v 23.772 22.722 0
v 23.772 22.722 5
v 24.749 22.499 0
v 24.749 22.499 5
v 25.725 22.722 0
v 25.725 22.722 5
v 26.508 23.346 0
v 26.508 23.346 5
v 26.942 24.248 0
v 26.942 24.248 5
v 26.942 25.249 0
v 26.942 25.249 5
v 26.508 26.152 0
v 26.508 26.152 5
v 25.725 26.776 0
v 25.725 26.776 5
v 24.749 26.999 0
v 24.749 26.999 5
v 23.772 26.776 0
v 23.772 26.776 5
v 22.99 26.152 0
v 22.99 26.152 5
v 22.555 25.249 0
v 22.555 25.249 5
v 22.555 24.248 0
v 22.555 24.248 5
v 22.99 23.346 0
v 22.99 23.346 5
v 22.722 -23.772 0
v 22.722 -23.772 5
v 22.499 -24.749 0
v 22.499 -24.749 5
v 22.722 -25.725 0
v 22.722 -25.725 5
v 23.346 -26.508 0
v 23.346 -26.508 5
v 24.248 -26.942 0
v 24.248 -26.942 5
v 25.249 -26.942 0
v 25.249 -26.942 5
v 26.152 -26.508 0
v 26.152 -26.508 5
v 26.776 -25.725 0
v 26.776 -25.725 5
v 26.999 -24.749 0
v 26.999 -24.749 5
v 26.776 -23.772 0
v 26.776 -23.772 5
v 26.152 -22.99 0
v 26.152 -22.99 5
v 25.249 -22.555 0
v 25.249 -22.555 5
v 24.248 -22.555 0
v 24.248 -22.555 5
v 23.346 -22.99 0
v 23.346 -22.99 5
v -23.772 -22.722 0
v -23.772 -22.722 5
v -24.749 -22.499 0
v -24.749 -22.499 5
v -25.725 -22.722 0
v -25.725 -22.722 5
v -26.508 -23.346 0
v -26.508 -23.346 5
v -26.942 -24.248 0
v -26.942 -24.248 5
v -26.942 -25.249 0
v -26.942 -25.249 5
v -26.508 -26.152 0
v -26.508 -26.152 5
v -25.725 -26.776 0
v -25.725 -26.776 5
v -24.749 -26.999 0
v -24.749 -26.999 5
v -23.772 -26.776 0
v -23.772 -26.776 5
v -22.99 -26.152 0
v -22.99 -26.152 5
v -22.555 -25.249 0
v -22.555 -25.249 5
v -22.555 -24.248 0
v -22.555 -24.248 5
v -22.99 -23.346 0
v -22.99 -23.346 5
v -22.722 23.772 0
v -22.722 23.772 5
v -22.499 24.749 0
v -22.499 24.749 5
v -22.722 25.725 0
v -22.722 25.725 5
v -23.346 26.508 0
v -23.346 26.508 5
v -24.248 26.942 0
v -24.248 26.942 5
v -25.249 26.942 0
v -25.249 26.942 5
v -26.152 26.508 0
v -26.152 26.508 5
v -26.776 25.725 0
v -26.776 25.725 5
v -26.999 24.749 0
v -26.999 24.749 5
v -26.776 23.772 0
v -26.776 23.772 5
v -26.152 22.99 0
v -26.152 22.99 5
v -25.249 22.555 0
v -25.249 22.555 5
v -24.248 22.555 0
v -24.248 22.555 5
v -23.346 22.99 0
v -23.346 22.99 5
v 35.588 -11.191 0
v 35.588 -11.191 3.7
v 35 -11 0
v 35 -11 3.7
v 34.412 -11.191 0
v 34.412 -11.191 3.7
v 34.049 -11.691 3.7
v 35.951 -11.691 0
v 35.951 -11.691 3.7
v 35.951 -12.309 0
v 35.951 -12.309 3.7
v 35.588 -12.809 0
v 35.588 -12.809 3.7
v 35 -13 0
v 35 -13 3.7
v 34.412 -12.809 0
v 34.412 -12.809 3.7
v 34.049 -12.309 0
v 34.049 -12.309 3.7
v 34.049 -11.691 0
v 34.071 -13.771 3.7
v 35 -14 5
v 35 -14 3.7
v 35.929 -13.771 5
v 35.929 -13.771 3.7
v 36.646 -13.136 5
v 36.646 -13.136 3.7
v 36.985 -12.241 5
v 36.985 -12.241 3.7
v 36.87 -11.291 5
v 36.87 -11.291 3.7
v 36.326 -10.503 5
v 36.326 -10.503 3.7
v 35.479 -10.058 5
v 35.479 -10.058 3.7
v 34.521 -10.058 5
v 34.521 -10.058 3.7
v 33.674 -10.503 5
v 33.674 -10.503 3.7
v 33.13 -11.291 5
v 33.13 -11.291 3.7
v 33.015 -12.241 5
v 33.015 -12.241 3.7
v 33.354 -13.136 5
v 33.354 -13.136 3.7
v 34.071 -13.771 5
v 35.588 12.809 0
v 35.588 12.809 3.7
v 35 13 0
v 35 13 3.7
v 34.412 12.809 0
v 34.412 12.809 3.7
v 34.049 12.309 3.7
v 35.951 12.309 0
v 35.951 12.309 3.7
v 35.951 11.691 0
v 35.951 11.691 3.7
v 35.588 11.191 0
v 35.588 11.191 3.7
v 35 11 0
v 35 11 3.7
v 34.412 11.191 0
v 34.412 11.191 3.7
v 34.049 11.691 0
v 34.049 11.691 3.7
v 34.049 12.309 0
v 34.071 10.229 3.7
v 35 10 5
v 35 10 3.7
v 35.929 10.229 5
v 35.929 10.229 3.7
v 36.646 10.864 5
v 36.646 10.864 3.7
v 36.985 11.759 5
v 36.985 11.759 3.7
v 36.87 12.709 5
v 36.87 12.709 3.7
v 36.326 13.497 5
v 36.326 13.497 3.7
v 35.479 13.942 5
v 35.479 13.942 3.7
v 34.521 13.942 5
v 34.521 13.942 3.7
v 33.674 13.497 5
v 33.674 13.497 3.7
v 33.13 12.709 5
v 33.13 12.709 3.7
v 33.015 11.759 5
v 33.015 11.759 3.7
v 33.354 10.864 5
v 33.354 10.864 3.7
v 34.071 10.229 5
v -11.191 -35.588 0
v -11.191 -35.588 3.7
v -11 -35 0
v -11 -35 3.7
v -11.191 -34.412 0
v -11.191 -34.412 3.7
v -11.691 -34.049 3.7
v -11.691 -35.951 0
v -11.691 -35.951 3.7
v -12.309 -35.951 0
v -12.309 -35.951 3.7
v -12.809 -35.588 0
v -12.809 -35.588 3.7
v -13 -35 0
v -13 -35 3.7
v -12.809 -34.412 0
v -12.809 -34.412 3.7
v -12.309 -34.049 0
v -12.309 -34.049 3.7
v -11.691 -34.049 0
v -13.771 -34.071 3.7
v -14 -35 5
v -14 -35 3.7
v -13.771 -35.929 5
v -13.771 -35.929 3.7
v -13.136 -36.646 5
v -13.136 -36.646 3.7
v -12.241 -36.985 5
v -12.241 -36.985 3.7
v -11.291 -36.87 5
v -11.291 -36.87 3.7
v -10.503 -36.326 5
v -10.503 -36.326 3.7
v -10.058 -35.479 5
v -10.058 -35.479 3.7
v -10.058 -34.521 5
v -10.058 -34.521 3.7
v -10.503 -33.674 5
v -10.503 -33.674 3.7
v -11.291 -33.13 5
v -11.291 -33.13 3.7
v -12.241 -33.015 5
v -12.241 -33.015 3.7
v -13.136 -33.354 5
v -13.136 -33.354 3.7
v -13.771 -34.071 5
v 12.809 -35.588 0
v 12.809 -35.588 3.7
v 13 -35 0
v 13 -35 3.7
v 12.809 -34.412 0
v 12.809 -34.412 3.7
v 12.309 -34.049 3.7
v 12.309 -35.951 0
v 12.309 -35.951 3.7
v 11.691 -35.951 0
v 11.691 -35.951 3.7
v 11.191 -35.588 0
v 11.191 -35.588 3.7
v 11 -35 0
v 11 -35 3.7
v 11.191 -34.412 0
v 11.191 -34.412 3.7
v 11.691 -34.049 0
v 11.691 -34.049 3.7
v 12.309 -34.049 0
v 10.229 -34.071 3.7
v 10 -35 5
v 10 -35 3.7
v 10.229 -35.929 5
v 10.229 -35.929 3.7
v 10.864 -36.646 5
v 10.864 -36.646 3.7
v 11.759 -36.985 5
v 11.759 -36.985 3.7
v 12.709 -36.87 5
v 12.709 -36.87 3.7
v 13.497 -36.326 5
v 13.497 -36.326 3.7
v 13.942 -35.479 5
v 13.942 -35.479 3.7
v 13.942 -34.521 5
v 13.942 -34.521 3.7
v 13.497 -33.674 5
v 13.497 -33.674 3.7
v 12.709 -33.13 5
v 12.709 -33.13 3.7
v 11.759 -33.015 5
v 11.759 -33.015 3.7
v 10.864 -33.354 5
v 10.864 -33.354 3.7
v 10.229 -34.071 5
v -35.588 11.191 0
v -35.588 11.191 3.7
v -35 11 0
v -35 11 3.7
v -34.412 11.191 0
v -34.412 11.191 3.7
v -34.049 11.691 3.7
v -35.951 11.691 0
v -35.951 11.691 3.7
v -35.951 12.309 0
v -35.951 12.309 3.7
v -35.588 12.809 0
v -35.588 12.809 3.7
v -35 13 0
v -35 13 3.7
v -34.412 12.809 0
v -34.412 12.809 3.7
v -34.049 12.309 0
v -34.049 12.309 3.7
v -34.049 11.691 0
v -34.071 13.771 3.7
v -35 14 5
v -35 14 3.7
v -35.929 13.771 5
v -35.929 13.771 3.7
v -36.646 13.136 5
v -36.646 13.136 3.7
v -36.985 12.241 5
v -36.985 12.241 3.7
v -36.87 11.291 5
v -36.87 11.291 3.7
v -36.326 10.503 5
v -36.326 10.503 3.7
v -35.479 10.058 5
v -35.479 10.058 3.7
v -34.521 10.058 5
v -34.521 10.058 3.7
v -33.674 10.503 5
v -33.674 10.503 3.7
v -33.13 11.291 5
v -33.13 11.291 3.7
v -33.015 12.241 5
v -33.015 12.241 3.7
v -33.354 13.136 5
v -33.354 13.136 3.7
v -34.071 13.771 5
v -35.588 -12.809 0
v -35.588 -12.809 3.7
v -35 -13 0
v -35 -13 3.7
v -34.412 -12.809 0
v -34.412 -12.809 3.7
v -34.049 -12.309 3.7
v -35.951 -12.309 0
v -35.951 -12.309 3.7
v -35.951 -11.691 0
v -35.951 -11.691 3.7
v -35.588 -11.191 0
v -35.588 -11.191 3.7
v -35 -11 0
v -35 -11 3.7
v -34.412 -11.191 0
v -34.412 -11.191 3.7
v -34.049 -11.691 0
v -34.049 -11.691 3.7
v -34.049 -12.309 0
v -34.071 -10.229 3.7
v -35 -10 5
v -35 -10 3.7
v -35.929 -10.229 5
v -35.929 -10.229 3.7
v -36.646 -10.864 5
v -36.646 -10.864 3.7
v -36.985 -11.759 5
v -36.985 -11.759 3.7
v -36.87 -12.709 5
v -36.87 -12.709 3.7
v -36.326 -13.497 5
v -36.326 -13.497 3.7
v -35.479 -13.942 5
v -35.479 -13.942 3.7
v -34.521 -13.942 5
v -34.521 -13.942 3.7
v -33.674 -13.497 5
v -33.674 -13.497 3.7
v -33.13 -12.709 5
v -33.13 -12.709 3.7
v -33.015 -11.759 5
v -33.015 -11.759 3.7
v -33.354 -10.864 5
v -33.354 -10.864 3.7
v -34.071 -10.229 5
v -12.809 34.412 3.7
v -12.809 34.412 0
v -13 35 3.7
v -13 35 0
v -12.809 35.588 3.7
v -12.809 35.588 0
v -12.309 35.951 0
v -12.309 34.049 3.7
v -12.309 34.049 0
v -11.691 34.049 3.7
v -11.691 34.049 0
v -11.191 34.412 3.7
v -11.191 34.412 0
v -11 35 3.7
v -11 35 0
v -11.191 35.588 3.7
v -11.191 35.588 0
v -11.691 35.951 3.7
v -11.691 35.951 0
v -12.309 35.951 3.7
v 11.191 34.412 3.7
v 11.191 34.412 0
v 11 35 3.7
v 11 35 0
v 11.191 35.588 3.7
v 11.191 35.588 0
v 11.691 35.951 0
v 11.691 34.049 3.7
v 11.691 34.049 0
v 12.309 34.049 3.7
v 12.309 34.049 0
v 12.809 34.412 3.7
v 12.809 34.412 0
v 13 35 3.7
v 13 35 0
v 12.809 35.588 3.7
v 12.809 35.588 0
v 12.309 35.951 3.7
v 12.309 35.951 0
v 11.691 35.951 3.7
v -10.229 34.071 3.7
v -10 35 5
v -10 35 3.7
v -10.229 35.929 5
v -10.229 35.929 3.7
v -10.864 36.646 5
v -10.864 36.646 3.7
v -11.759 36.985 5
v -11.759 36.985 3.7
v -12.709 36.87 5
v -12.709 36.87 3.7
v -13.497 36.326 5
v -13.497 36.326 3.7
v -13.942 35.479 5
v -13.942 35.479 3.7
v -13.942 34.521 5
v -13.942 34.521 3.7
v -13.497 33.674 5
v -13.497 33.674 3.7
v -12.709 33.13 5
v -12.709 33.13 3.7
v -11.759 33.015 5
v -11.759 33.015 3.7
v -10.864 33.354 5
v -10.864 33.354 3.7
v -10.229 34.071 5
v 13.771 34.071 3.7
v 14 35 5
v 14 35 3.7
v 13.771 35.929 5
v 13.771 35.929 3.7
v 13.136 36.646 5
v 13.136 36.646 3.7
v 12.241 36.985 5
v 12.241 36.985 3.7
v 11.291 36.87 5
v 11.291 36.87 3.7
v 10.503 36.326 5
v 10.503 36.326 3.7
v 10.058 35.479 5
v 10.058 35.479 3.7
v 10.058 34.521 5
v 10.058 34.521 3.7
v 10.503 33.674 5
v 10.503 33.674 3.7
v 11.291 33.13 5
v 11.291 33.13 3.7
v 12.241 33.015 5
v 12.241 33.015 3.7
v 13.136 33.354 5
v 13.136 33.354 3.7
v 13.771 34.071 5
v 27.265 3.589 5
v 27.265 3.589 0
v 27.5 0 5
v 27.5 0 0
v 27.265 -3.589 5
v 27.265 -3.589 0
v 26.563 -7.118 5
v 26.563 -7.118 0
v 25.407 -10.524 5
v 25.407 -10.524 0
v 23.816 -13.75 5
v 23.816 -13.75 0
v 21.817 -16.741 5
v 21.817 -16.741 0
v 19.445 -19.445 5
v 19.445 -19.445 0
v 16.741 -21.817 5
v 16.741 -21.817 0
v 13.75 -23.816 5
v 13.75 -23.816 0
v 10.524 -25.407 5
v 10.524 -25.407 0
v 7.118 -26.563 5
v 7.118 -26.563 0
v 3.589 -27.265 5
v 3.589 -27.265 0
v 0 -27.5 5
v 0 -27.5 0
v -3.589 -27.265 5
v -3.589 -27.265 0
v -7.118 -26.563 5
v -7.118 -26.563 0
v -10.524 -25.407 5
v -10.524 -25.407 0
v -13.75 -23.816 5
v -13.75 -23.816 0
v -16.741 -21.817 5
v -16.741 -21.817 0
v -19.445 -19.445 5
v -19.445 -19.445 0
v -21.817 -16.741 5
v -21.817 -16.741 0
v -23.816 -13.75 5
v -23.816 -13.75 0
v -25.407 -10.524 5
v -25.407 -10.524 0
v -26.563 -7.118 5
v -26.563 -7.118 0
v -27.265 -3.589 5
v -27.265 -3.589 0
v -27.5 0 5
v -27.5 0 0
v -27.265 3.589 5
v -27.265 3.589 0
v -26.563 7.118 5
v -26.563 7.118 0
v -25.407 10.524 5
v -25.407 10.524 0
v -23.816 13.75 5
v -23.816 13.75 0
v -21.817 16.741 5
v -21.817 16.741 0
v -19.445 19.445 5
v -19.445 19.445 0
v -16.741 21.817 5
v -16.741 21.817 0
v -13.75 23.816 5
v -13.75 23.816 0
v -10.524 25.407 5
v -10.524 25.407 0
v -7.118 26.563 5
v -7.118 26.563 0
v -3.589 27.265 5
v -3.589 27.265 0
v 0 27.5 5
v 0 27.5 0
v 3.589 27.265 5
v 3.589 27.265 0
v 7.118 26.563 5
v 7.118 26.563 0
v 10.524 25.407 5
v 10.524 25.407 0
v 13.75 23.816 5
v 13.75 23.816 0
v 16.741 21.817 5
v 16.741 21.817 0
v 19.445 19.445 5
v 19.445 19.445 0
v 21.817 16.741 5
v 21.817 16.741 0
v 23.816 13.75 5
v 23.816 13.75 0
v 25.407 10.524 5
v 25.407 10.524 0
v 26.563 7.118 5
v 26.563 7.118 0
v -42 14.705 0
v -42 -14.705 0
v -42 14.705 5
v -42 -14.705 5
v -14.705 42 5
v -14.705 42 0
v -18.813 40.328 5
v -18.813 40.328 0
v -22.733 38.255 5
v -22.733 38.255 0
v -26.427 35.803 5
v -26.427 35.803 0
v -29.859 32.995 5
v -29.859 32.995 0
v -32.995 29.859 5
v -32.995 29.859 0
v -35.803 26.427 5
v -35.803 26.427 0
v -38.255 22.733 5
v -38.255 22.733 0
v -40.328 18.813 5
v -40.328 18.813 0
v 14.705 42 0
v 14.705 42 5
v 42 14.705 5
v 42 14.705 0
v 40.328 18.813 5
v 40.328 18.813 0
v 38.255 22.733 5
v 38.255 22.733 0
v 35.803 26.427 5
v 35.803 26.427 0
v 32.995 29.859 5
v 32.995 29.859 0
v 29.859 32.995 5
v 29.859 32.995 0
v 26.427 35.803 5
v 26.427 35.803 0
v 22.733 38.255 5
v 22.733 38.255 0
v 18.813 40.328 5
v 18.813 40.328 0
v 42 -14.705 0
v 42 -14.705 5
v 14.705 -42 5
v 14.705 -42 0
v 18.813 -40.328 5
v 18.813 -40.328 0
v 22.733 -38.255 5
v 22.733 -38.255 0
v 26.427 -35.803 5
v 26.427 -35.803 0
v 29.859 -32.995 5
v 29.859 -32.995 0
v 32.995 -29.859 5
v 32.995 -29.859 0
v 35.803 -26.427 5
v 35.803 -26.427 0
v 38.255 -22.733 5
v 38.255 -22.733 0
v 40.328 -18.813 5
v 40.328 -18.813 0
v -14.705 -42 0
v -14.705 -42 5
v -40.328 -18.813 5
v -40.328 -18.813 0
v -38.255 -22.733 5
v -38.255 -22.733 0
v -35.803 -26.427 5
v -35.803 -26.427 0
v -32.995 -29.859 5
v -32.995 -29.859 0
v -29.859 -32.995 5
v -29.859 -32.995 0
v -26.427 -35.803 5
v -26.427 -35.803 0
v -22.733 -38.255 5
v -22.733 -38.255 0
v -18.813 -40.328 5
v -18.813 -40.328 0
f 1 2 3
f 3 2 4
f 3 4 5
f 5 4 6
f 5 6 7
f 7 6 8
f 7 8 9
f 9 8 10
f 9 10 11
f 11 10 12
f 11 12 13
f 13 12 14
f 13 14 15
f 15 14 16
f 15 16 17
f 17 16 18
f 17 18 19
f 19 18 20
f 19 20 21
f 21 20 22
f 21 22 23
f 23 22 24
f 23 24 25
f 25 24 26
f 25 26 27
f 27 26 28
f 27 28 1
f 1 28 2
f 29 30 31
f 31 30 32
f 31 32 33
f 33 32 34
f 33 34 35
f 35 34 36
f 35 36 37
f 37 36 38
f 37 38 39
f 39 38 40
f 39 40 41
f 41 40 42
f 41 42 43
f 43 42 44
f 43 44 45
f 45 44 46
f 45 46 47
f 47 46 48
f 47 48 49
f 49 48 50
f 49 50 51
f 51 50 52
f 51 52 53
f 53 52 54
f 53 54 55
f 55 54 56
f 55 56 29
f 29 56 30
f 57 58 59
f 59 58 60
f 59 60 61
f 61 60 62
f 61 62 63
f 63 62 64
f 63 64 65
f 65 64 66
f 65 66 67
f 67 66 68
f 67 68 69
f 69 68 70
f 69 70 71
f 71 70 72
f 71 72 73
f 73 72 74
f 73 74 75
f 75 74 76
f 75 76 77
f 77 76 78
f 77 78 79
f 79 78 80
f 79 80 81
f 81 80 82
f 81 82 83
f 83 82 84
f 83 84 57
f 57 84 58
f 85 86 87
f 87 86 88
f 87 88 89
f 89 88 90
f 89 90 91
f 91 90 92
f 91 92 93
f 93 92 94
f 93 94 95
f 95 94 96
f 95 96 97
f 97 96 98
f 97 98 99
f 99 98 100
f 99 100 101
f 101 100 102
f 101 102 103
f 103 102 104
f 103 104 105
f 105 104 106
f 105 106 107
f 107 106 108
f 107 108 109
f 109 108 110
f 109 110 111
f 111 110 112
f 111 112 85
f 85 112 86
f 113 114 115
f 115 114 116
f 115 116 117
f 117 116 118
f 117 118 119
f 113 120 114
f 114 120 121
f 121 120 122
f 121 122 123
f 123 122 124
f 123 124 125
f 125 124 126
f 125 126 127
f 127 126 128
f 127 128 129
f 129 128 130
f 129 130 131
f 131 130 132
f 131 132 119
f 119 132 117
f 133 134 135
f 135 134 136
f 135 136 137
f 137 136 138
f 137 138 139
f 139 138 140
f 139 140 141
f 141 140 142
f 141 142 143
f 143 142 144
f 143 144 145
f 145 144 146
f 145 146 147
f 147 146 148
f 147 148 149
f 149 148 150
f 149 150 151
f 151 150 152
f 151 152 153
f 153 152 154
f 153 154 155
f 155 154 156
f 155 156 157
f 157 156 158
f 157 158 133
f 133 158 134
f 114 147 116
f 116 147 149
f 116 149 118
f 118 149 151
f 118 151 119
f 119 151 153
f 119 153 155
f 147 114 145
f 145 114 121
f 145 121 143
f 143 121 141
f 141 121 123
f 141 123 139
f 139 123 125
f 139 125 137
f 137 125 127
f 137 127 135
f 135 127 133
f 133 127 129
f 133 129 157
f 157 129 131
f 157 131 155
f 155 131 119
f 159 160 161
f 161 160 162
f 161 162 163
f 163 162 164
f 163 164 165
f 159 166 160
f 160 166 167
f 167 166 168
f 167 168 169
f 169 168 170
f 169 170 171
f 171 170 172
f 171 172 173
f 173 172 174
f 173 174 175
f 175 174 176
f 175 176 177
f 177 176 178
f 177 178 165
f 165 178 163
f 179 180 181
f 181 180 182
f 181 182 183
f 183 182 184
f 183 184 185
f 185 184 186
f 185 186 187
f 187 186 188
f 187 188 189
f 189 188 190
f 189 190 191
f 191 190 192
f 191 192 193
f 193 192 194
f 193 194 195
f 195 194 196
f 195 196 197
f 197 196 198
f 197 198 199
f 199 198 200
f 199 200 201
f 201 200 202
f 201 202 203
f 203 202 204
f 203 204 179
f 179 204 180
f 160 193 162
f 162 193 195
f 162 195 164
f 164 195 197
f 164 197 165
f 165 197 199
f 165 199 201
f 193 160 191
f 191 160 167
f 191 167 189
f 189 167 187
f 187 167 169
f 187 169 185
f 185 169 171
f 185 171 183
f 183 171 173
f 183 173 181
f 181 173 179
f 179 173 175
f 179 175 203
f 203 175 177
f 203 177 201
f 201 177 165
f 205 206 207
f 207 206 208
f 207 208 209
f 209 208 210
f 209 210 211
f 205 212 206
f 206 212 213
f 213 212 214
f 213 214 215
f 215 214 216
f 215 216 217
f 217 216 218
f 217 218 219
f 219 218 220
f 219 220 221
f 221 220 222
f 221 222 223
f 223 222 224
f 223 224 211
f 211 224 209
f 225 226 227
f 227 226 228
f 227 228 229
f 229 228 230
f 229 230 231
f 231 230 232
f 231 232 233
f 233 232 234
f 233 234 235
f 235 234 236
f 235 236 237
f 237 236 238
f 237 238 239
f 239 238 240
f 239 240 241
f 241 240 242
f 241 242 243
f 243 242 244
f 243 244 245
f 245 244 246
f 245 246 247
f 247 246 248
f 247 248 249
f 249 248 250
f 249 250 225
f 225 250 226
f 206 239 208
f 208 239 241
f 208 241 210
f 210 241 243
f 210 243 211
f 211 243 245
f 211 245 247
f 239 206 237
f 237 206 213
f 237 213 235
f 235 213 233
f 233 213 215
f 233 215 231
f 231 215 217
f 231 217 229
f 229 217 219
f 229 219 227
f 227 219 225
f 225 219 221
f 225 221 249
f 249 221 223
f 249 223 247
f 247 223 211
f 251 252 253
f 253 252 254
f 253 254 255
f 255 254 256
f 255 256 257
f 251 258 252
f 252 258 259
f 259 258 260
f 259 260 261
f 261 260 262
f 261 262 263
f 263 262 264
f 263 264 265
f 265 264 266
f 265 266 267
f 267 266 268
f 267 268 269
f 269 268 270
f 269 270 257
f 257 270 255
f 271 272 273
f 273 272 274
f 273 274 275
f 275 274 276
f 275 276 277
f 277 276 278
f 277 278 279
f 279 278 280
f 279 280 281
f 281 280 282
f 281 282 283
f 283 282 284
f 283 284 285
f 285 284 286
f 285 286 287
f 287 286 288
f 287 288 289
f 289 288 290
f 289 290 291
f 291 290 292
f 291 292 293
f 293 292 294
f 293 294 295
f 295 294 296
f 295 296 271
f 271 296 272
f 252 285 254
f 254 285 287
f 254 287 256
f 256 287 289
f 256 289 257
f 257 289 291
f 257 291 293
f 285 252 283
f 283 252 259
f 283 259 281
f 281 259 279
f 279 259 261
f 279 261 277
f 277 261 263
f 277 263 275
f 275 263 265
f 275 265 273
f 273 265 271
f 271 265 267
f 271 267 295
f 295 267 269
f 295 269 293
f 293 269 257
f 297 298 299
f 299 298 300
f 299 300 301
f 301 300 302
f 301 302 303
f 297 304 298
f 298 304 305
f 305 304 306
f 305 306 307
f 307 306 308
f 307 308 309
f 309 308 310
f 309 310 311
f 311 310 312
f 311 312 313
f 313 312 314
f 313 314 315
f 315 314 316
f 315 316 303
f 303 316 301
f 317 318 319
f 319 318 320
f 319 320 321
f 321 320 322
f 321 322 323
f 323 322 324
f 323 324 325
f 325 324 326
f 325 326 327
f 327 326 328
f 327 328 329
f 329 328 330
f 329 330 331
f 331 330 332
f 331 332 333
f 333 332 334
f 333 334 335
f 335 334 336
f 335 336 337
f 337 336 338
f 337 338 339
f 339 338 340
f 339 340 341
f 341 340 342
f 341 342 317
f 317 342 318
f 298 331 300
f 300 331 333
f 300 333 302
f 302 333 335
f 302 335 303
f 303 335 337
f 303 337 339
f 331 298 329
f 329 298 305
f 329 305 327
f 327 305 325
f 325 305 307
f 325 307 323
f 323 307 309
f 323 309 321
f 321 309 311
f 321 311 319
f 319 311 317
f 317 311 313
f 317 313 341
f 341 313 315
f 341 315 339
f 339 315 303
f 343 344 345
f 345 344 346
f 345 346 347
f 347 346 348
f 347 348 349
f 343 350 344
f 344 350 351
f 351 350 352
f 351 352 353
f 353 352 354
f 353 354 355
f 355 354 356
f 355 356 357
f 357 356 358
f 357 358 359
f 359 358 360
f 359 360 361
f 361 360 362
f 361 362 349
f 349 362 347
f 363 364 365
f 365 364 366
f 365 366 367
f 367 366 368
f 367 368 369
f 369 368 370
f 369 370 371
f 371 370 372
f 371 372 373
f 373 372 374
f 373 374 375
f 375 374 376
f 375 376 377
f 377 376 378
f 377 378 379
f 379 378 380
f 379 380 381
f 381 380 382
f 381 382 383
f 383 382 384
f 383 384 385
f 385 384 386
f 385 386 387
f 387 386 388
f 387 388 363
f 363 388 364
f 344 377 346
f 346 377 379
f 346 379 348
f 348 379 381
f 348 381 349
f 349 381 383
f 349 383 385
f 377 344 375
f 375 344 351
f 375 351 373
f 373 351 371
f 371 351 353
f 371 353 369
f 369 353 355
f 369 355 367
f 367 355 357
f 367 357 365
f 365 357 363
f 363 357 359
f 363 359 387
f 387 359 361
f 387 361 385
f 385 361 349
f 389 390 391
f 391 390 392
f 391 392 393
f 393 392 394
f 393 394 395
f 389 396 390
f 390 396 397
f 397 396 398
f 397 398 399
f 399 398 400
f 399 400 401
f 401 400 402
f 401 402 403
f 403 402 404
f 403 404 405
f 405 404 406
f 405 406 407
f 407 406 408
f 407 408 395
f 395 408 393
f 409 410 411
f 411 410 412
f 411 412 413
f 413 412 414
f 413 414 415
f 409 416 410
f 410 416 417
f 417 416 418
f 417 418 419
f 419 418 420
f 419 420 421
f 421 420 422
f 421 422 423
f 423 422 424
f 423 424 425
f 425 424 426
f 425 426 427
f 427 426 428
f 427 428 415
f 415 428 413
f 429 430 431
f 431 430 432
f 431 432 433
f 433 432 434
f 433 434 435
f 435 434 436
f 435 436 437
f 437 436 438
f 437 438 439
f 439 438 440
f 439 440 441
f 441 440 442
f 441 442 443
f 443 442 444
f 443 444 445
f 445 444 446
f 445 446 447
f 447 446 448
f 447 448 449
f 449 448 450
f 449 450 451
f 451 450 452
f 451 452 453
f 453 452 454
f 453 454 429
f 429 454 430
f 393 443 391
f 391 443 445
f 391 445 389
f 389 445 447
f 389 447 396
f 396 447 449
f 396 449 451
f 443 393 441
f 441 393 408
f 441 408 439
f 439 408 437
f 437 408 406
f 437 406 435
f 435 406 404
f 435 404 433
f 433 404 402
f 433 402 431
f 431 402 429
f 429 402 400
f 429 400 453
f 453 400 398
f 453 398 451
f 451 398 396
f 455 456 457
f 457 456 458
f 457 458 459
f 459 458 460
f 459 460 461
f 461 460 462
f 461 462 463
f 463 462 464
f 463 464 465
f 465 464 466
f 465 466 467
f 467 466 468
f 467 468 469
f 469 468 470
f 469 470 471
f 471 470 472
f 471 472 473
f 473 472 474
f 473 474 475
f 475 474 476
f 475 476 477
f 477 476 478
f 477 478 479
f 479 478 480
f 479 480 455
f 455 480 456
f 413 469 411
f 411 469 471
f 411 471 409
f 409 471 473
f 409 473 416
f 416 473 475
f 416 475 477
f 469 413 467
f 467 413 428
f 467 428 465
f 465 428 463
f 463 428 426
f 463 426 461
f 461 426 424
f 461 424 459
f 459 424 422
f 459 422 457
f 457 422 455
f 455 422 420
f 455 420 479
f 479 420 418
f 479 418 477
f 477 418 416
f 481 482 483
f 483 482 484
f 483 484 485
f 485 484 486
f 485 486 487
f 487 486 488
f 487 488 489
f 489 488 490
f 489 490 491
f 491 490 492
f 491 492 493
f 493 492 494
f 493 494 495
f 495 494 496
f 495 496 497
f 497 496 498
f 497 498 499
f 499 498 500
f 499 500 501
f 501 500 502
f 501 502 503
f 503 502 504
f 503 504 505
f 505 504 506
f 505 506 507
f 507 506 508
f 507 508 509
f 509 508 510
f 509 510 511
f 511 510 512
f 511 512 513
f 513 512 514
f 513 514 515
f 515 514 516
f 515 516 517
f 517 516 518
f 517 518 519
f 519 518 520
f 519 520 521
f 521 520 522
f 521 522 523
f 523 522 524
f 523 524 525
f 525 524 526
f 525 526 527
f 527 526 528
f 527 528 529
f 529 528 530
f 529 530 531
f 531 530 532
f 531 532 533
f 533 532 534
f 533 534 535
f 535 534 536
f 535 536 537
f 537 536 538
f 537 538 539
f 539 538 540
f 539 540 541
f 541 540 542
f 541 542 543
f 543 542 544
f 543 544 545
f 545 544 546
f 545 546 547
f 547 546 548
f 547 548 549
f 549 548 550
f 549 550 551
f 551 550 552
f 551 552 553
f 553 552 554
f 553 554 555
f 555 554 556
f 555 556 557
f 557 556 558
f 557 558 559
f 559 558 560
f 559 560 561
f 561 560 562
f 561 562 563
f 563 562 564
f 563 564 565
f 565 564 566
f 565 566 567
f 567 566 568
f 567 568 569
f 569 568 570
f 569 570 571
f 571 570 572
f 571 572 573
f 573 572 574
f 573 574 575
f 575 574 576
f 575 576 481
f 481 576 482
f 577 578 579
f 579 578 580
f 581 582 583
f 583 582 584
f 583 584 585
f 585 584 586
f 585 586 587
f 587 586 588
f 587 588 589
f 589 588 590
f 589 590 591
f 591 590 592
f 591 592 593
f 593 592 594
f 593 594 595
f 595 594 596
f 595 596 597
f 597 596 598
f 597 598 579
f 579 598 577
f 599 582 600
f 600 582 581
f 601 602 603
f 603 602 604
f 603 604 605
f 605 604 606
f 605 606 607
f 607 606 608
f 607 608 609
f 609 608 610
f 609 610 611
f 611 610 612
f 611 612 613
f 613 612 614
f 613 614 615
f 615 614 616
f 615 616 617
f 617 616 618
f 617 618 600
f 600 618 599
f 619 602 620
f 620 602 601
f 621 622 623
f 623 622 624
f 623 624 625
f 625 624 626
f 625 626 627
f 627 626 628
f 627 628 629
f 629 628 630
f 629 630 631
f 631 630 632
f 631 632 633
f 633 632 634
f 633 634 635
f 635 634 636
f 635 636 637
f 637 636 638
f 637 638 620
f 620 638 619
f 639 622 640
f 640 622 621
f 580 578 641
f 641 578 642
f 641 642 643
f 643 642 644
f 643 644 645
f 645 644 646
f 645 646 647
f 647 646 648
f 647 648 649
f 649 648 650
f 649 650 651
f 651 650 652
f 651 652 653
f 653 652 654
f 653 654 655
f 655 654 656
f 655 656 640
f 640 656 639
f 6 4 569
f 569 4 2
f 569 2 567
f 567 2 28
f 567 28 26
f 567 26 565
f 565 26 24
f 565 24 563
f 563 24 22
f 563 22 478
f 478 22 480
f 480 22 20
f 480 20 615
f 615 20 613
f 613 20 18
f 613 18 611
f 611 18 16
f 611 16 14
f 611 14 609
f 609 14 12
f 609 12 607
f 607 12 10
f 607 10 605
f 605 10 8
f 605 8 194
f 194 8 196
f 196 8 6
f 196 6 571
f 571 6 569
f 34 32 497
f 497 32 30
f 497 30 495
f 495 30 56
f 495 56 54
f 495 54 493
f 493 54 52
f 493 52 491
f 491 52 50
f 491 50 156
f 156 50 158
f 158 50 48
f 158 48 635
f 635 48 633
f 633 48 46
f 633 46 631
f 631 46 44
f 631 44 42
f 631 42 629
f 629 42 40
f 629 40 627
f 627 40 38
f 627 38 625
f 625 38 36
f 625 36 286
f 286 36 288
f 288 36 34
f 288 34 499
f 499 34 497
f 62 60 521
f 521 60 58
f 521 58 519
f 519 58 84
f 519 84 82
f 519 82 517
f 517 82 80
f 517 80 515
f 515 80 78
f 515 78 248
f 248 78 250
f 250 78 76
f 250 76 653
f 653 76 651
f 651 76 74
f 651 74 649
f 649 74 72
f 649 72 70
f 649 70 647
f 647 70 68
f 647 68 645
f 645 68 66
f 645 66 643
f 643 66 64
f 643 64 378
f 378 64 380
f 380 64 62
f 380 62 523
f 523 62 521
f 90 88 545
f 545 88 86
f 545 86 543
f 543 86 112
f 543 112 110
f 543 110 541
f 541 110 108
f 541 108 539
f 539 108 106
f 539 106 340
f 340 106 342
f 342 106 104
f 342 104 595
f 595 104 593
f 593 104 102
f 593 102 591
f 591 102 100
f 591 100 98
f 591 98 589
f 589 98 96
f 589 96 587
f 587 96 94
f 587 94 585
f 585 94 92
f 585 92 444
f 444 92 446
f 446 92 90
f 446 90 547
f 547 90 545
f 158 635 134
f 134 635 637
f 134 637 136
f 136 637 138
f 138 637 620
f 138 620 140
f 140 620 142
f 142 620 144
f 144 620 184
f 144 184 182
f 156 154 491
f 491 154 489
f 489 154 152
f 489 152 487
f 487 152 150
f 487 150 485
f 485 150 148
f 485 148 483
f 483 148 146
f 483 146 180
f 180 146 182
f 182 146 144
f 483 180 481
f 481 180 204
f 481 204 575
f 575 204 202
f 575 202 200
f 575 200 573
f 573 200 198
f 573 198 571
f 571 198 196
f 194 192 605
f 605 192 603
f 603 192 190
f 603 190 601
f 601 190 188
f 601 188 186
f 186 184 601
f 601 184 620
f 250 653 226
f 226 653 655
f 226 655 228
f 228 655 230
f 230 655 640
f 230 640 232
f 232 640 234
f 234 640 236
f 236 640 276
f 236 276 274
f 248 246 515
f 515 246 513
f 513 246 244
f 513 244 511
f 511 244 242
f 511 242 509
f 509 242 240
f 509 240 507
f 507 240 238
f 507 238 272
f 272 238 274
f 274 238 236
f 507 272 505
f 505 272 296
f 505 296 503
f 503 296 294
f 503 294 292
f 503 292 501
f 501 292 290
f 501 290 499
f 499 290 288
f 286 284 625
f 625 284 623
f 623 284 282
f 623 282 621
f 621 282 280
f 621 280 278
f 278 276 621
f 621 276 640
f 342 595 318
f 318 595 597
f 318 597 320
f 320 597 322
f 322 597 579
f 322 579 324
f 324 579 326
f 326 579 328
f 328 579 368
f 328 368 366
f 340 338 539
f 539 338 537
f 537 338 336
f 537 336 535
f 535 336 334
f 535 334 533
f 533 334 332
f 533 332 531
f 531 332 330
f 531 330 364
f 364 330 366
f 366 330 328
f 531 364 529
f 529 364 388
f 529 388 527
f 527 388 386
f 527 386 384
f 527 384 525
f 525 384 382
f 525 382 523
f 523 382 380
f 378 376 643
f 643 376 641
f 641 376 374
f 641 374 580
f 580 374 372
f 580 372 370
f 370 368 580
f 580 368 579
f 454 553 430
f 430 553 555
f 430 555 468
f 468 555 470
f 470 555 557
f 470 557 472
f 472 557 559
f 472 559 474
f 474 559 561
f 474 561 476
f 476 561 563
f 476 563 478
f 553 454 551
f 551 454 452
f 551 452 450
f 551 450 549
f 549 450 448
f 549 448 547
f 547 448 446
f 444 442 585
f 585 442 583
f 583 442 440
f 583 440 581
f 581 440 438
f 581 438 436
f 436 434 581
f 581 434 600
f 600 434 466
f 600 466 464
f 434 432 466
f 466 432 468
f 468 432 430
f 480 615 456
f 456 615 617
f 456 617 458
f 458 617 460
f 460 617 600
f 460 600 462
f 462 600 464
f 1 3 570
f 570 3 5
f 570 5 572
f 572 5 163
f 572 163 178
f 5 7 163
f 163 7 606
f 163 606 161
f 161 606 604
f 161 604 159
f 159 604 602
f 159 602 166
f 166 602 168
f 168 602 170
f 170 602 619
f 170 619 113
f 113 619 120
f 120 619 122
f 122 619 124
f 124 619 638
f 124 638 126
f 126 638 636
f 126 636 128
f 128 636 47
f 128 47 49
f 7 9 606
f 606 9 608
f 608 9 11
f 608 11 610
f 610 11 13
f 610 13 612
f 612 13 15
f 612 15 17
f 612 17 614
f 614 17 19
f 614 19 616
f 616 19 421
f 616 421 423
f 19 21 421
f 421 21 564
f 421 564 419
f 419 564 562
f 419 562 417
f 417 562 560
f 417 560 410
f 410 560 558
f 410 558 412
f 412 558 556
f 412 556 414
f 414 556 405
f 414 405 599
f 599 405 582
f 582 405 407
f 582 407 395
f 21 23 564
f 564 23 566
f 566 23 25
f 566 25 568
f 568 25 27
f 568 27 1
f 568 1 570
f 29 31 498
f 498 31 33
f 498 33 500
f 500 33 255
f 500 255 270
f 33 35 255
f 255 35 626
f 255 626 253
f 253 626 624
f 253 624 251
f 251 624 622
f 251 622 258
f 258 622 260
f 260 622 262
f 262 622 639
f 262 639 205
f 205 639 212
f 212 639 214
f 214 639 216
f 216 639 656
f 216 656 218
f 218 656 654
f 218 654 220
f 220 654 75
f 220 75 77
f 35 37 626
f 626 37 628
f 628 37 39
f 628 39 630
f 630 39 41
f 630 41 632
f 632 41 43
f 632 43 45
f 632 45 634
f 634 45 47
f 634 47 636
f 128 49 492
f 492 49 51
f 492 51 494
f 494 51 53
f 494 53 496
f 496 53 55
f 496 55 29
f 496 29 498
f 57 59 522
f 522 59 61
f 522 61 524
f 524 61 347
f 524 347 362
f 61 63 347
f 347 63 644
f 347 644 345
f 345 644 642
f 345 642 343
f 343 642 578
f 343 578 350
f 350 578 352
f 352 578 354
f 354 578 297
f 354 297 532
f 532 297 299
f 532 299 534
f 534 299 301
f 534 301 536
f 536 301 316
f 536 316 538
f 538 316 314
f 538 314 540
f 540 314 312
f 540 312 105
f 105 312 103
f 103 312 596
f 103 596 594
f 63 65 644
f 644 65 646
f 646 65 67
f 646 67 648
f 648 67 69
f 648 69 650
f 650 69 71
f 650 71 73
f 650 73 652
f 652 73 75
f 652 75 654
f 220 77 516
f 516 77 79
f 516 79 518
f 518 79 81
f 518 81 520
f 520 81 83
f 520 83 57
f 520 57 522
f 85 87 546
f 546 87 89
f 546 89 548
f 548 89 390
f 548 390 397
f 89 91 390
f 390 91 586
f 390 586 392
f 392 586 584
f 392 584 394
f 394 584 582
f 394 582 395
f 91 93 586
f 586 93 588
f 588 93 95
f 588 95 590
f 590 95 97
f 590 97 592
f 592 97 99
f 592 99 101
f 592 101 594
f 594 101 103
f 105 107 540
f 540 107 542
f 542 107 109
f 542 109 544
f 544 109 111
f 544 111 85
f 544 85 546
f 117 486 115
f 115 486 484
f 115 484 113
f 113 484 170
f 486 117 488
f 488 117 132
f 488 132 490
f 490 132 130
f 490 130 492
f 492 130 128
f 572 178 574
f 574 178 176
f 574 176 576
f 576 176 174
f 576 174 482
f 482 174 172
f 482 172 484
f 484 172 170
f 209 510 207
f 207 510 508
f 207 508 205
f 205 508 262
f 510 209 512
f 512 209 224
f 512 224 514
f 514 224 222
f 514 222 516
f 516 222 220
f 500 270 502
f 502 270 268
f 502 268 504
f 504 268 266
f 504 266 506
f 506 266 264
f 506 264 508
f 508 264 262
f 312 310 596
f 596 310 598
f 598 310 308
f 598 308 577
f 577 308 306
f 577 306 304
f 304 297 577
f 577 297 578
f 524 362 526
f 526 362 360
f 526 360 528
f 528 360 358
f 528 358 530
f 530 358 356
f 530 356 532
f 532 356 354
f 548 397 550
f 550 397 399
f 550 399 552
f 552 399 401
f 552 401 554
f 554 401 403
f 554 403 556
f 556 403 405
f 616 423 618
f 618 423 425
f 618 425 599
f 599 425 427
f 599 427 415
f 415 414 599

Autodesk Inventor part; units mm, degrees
ref_plane "YZ Plane" through (0, 0, 0) normal (1, 0, 0) x (0, 1, 0)
ref_plane "XZ Plane" through (0, 0, 0) normal (0, 1, 0) x (-1, 0, 0)
ref_plane "XY Plane" through (0, 0, 0) normal (0, 0, 1) x (1, 0, 0)
sketch "스케치1" plane through (0, 0, 0) normal (0, 0, 1) x (1, 0, 0)
  circle A0 centre (0, 0) radius 44.5
  line L0 (-42, -42) -> (42, -42)
  line L1 (42, -42) -> (42, 42)
  line L2 (42, 42) -> (-42, 42)
  line L3 (-42, 42) -> (-42, -42)
  line L4 (-42, -42) -> (42, 42) construction
  line L5 (42, -42) -> (-42, 42) construction
  circle A1 centre (0, 0) radius 27.5
  point P0 (-42, 14.7054)
  point P1 (-42, -14.7054)
  point P2 (-14.7054, -42)
  point P3 (14.7054, -42)
  point P4 (42, -14.7054)
  point P5 (42, 14.7054)
  point P6 (14.7054, 42)
  point P7 (-14.7054, 42)
  dimension "d0" = 89
  dimension "d1" = 84
  dimension "d2" = 84
  dimension "d3" = 55
extrude "돌출1" add sketch "스케치1" along normal blind 5 contours L1 A0 L0 L3 L2
sketch "스케치2" plane through (0, 0, 5) normal (0, 0, 1) x (1, 0, 0)
  circle A0 centre (-12, 35) radius 1
  line L0 (0, 0) -> (0, 47.7452)
  circle A1 centre (-12, 35) radius 2
  circle A2 centre (12, 35) radius 1
  circle A3 centre (12, 35) radius 2
  dimension "d6" = 2
  dimension "d7" = 35
  dimension "d8" = 12
  dimension "d9" = 4
extrude "돌출2" cut sketch "스케치2" against normal blind 1.3 contours A0 | A1 | A2 | A3
extrude "돌출3" cut sketch "스케치2" against normal blind 10.5 contours A0 | A2
pattern_circular "원형 패턴1" count 4 over 360 about axis through (0, 0, 0) along (0, 0, 1) of "돌출2", "돌출3"
sketch "스케치3" plane through (0, 0, 5) normal (0, 0, 1) x (1, 0, 0)
  circle A0 centre (0, 0) radius 35 construction
  line L0 (0, 0) -> (-24.7487, 24.7487) construction
  line L1 (0, 0) -> (0, 35) construction
  circle A1 centre (-24.7487, 24.7487) radius 2.25
  dimension "d17" = 70
  dimension "d18" = 45
  dimension "d19" = 4.5
extrude "돌출4" cut sketch "스케치3" against normal blind 5
pattern_circular "원형 패턴2" count 4 over 360 about axis through (0, 0, 0) along (0, 0, 1) of "돌출4"
properties part number "감속기어1 - 하우징 커버"
